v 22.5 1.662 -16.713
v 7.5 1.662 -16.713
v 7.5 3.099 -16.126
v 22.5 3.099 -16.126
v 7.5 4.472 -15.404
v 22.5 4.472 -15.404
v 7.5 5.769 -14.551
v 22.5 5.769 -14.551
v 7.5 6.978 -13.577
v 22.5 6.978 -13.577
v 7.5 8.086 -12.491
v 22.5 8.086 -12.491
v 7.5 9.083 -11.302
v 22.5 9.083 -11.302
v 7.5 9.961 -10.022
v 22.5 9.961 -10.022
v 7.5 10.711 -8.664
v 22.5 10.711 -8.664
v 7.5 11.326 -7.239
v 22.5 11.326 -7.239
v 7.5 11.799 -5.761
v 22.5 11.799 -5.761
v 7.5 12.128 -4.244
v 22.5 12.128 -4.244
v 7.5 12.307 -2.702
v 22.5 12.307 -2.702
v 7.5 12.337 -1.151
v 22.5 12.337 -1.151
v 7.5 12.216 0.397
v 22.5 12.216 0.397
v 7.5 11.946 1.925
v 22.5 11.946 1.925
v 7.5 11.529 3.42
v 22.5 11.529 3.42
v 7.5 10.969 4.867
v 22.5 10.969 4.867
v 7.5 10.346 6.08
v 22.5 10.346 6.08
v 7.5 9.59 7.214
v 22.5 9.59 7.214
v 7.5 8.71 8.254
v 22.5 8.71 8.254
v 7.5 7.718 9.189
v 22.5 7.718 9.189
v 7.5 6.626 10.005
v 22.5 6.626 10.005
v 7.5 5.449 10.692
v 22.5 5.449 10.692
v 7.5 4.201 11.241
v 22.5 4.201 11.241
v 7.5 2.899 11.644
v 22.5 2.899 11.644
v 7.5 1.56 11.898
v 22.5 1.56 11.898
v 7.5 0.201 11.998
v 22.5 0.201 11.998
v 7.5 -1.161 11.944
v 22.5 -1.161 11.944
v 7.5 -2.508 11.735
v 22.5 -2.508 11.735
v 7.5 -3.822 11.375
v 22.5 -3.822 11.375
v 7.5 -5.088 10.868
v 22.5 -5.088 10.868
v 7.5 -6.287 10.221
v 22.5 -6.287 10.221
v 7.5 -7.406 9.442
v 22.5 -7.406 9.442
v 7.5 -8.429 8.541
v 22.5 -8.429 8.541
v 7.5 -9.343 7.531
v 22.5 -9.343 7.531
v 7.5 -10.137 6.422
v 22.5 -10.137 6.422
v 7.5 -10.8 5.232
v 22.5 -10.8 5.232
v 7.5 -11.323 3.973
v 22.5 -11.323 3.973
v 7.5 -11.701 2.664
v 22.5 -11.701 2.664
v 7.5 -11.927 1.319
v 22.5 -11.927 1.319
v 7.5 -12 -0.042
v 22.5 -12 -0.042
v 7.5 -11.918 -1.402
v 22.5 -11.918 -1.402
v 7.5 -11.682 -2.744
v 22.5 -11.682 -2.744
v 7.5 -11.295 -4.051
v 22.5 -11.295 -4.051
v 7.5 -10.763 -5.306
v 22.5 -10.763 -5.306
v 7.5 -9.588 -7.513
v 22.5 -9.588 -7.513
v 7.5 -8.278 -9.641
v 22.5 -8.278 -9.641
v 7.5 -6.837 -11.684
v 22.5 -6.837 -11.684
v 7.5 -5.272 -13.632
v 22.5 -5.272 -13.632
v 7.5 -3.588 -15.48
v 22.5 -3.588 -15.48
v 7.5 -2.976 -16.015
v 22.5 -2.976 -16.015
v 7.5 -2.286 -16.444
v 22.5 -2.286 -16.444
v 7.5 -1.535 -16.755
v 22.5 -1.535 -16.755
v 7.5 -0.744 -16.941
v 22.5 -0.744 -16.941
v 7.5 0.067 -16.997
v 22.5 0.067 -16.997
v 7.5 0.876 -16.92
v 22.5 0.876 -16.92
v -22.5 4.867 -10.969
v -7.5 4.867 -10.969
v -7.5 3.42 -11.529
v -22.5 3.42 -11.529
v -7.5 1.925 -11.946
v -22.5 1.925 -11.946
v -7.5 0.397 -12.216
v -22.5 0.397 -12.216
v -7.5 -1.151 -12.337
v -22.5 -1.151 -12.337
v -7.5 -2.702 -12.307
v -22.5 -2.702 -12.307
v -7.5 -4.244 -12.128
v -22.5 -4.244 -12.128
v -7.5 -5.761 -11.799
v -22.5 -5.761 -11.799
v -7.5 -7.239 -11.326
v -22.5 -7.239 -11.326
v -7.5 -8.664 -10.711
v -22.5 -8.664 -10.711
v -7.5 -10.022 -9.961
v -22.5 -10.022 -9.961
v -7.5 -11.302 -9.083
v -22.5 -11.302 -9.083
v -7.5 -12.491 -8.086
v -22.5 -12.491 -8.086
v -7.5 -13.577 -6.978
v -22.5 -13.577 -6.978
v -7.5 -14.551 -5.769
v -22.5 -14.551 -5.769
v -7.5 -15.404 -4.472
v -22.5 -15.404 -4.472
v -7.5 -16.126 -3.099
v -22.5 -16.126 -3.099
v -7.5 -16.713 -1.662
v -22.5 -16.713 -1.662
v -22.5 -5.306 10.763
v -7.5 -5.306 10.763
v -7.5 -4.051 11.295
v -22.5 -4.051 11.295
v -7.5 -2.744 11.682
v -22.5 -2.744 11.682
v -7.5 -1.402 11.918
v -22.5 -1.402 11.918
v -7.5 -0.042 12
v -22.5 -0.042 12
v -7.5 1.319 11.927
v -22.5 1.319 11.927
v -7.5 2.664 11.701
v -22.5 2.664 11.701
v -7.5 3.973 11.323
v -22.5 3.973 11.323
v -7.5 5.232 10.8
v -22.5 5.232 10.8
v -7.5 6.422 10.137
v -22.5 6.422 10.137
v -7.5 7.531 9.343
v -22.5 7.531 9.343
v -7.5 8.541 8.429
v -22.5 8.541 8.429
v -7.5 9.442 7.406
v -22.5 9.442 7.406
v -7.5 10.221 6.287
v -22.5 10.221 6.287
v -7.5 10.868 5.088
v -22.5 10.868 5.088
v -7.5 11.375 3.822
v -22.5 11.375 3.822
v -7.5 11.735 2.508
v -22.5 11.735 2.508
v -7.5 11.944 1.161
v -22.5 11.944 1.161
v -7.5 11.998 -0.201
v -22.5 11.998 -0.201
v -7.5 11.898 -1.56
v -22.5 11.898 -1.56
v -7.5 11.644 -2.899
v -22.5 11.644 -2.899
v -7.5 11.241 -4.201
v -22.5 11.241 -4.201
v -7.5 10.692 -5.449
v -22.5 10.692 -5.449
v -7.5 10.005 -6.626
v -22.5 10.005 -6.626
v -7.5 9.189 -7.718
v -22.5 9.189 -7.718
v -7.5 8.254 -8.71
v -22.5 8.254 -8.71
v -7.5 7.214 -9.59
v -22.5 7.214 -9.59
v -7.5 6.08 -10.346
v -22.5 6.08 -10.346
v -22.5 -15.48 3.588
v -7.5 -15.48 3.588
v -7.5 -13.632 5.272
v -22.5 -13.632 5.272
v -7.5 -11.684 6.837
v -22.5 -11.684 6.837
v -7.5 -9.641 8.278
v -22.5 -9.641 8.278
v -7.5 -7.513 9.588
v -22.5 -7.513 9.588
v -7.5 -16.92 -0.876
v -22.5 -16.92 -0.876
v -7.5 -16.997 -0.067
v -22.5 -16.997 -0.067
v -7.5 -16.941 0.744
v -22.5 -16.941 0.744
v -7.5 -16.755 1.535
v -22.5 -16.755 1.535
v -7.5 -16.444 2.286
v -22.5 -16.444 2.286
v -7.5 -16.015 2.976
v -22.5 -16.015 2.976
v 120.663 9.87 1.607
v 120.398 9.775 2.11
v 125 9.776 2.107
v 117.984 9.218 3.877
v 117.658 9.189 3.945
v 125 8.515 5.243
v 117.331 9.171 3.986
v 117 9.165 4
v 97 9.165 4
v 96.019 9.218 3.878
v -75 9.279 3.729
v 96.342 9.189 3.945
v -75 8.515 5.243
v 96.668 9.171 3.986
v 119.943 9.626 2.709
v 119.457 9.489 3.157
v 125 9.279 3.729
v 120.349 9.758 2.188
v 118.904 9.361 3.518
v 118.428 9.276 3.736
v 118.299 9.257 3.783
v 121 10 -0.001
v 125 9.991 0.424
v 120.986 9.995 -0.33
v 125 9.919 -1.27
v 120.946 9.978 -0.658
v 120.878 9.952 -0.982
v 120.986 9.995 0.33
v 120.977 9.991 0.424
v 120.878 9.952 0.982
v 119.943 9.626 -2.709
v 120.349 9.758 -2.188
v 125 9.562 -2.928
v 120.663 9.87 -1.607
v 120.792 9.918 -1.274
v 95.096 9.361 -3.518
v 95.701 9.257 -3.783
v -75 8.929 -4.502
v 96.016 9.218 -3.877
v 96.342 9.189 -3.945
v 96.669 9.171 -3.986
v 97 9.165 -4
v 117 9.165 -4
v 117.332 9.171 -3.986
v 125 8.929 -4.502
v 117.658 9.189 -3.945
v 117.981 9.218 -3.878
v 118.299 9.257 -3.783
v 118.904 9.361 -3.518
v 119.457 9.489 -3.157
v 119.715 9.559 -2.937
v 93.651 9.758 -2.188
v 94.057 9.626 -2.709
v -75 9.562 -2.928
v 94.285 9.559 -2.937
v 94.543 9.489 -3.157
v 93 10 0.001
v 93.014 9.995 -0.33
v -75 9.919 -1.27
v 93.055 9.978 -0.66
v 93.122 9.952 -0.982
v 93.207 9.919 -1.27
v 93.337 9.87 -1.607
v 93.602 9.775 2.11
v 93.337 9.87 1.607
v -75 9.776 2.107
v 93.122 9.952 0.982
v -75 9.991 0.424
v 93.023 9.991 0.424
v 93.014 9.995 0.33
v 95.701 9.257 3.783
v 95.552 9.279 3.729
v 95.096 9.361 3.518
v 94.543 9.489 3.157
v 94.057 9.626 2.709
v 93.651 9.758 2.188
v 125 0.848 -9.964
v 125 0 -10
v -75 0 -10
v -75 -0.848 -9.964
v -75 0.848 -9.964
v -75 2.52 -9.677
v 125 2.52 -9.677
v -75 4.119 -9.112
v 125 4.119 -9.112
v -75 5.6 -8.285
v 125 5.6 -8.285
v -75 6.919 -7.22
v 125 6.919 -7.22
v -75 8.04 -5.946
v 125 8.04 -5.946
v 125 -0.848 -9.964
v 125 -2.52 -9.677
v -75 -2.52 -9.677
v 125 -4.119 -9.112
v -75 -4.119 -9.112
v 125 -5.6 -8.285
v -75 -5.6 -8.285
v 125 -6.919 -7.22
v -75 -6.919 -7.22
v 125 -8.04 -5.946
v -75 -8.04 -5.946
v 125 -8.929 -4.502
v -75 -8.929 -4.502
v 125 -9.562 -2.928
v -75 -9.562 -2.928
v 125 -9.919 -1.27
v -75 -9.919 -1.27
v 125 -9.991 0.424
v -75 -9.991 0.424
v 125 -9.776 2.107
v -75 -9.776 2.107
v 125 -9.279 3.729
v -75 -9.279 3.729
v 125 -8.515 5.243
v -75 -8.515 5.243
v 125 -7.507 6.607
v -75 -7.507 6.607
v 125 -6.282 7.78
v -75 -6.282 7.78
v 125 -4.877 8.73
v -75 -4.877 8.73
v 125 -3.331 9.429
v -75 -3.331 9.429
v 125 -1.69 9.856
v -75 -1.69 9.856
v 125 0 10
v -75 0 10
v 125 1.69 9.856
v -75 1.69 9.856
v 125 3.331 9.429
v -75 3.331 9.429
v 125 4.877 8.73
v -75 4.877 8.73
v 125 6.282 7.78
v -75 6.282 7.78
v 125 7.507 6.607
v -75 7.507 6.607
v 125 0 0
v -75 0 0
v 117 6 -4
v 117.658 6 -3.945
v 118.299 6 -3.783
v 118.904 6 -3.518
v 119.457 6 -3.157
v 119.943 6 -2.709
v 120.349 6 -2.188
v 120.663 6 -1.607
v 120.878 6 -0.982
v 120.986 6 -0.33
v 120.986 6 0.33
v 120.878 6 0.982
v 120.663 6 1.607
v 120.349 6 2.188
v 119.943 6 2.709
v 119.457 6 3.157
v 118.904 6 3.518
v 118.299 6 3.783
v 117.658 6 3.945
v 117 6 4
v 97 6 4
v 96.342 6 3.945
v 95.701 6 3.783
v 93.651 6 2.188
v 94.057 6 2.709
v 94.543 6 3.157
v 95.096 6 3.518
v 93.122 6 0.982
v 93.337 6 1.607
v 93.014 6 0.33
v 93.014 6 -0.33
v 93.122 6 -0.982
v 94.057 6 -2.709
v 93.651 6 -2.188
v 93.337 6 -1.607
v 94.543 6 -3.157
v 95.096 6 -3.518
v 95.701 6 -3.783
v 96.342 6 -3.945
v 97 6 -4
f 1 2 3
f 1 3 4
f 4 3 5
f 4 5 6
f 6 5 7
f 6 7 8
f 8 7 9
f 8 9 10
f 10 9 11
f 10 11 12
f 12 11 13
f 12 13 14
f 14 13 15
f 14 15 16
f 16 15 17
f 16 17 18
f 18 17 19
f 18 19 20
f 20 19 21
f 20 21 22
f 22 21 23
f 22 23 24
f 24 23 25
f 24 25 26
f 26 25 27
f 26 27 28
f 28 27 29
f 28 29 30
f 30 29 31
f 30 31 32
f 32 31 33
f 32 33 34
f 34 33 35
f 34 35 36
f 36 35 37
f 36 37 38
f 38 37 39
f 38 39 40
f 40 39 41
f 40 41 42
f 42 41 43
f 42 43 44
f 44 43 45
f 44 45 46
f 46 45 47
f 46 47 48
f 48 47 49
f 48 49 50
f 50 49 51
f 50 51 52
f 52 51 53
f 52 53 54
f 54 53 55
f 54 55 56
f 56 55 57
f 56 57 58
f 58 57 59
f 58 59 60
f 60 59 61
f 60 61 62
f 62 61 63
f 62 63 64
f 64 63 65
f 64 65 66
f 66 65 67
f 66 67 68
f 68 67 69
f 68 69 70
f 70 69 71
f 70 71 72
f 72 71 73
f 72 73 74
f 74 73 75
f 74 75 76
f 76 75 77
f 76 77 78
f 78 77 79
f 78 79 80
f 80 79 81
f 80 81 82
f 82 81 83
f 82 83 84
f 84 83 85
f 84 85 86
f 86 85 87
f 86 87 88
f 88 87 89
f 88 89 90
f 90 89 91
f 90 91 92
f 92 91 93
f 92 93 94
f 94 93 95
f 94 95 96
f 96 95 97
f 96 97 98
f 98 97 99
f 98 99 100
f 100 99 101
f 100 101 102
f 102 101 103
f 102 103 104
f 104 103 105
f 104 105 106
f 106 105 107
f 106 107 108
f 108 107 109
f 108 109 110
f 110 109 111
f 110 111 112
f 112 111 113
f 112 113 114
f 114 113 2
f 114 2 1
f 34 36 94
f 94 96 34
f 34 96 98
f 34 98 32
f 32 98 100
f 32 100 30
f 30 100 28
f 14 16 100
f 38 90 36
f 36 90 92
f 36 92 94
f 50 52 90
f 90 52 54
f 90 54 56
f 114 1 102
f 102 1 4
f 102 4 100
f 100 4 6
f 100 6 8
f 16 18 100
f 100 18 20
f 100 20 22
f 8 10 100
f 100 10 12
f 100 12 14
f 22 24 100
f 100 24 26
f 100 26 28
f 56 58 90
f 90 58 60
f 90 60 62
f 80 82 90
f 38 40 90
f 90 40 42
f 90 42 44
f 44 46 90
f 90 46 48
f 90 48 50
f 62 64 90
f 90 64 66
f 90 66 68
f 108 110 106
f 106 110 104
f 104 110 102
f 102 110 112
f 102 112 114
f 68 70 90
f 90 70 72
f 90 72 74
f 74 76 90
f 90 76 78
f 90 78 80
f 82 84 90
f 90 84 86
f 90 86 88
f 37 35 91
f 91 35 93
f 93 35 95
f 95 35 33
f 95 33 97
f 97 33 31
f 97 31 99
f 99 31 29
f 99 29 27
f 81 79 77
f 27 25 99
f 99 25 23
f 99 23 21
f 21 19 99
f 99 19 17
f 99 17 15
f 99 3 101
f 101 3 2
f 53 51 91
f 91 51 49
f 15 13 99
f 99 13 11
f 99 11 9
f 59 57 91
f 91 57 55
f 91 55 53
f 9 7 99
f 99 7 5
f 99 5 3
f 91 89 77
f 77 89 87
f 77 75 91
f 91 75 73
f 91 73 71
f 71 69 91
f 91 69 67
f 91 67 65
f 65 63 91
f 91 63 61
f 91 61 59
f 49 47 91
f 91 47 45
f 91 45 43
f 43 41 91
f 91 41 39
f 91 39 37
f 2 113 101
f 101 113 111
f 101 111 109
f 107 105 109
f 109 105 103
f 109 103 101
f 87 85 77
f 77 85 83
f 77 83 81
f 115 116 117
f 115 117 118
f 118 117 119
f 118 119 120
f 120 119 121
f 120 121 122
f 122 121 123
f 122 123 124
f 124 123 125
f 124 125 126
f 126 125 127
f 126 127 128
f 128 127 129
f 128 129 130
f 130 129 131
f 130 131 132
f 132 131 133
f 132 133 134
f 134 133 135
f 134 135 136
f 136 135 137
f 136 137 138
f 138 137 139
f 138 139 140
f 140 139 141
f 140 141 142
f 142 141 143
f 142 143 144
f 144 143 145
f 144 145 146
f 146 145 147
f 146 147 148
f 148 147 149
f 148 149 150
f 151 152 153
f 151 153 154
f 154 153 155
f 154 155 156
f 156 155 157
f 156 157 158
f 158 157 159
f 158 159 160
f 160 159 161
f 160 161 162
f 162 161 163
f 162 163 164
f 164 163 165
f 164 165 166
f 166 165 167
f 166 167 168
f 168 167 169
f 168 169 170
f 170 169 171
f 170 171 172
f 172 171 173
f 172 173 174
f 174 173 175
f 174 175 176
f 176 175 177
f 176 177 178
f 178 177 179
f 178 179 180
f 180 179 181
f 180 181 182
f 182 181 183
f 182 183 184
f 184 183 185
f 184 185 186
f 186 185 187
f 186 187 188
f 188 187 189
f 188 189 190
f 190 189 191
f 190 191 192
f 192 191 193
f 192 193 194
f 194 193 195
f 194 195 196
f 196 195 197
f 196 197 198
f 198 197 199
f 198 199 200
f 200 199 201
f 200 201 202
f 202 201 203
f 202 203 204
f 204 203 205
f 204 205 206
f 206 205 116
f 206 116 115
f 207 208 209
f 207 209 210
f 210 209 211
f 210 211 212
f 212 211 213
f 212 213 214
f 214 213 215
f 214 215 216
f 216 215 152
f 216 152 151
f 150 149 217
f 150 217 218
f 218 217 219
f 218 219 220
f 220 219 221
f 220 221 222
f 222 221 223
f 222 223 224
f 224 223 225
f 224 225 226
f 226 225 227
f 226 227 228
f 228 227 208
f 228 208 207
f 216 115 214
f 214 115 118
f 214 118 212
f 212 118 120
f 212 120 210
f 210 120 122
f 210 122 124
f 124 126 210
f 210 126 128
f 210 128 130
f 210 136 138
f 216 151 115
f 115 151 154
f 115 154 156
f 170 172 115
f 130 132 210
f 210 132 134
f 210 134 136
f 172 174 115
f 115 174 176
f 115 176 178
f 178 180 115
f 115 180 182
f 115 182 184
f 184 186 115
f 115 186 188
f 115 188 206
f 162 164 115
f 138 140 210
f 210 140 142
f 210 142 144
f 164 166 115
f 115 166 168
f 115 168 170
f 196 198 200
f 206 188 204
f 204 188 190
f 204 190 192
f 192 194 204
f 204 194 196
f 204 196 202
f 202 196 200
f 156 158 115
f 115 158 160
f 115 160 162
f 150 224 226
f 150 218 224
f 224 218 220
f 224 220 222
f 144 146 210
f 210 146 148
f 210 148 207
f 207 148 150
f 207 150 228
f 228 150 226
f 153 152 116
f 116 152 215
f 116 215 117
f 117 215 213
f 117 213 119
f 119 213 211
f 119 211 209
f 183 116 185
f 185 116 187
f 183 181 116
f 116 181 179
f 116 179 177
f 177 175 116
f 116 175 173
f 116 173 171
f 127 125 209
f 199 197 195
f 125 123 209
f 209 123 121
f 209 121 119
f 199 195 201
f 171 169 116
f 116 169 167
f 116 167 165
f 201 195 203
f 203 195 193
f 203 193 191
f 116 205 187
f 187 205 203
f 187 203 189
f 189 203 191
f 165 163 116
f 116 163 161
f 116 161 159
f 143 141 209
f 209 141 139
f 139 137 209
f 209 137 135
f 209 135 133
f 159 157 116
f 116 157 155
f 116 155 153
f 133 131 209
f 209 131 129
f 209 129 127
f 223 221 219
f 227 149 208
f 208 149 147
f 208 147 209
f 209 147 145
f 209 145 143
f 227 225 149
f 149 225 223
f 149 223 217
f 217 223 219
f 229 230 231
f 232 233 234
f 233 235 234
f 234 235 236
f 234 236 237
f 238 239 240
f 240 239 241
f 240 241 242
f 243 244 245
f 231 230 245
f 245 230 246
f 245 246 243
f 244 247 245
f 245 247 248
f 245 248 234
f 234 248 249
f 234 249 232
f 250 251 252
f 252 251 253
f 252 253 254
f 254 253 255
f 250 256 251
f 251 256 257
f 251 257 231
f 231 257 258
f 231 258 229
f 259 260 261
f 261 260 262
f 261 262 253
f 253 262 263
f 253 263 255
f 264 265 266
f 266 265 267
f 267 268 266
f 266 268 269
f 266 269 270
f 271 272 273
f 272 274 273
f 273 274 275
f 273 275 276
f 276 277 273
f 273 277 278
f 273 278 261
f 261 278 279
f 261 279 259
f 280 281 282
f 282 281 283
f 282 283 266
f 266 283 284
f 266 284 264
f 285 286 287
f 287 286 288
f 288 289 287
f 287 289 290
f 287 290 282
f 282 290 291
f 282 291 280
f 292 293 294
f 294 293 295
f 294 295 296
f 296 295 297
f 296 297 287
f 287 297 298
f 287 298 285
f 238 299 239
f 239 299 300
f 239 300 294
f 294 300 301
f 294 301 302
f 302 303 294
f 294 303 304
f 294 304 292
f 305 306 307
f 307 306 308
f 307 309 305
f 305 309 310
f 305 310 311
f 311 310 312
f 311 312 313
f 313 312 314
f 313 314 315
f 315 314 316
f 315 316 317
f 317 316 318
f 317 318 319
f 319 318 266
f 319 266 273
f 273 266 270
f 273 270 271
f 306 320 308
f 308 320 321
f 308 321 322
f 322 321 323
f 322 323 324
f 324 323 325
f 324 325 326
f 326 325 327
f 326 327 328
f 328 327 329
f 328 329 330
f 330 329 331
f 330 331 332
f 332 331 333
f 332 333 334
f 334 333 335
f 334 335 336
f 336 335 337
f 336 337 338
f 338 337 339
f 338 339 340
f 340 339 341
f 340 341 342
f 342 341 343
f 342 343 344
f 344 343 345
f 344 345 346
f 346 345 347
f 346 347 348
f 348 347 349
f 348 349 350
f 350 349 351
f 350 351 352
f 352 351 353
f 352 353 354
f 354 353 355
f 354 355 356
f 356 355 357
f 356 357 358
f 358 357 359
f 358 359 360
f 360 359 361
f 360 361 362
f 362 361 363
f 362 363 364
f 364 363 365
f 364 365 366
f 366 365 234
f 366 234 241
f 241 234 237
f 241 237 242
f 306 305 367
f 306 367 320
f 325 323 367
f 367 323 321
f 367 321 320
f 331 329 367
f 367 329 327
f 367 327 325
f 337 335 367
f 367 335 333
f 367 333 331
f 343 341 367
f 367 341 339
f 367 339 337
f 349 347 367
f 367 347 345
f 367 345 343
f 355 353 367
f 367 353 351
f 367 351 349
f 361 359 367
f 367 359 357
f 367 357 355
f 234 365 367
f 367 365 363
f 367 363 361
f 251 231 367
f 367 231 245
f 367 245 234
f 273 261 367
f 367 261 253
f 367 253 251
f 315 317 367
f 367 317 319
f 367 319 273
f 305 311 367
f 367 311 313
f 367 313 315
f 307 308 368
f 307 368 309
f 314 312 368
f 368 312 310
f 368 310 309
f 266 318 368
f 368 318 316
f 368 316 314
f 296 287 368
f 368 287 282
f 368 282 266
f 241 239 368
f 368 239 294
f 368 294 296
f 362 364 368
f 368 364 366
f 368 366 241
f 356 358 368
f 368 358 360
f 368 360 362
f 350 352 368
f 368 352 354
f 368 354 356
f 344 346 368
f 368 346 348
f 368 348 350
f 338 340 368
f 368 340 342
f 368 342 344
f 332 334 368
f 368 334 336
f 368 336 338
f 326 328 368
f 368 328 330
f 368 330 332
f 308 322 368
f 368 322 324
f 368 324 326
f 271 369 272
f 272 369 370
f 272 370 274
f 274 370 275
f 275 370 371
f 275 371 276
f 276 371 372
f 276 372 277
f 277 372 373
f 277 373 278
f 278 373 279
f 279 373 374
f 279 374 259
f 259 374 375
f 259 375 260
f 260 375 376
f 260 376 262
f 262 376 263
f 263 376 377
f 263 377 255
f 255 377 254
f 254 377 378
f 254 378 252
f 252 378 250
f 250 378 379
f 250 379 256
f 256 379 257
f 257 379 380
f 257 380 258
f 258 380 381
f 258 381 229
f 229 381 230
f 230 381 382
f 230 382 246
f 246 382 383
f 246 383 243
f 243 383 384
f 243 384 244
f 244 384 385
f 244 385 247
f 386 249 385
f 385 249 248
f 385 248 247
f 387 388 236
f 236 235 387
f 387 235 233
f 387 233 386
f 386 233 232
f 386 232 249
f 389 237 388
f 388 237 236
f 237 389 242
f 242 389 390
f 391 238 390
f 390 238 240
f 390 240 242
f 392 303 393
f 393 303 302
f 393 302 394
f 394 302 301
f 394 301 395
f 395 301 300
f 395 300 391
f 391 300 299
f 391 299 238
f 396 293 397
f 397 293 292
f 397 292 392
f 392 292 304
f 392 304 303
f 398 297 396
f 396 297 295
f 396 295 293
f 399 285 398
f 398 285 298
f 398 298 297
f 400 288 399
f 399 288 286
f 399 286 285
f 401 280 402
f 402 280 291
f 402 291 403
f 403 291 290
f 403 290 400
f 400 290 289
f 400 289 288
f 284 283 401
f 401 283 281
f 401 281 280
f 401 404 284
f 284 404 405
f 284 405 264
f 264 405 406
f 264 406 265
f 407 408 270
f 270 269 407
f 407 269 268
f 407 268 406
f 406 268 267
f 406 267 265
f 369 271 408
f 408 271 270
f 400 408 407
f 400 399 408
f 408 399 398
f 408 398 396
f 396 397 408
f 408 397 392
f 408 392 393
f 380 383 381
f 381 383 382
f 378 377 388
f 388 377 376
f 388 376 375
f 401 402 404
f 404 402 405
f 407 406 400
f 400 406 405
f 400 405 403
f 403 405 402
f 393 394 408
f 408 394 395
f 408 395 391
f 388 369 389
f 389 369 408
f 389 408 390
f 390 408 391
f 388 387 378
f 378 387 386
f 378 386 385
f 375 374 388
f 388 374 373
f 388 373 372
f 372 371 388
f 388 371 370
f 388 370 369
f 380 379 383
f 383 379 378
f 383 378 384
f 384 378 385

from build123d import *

# Parameters (mm, degrees)
SKETCH1_R                = 10
BOSS_EXTRUDE1_DEPTH      = 125
BOSS_EXTRUDE1_DEPTH_BACK = 75
BOSS_EXTRUDE2_START      = 15
BOSS_EXTRUDE2_DEPTH      = 7.5
BODY_MOVE_COPY1_ANGLE    = 90
CUT_EXTRUDE1_DEPTH       = 4


with BuildPart() as part:
    # Sketch1 → Boss-Extrude1 (new body, two sides)
    with BuildSketch(Plane(origin=(0, 0, 0), x_dir=(0, 0, -1), z_dir=(1, 0, 0))) as boss_extrude1_sk:
        Circle(SKETCH1_R)
    extrude(amount=BOSS_EXTRUDE1_DEPTH)
    extrude(boss_extrude1_sk.sketch, amount=-BOSS_EXTRUDE1_DEPTH_BACK)

    # Sketch4 → Cut-Extrude1 (cut)
    with BuildSketch(Plane(origin=(0, 10, 0), x_dir=(1, 0, 0), z_dir=(0, 1, 0))):
        with BuildLine():
            Line((117, -4), (97, -4))
            ThreePointArc((97, -4), (93, 0), (97, 4))
            Line((97, 4), (117, 4))
            ThreePointArc((117, 4), (121, 0), (117, -4))
        make_face()
    extrude(amount=-CUT_EXTRUDE1_DEPTH, mode=Mode.SUBTRACT)


with BuildPart() as body_2:
    # Sketch2 → Boss-Extrude2 (new body, symmetric)
    with BuildSketch(Plane(origin=(0, 0, 0), x_dir=(0, 0, -1), z_dir=(1, 0, 0)).offset(BOSS_EXTRUDE2_START)):
        with BuildLine():
            ThreePointArc((15.479542802, -3.587694386), (16.864464688, -1.143374761), (16.712672037, 1.661917746))
            ThreePointArc((16.712672037, 1.661917746), (7.958571112, 11.035699457), (-4.867089568, 10.968657125))
            ThreePointArc((-4.867089568, 10.968657125), (-10.868088345, -5.087696504), (5.306226617, -10.763083159))
            ThreePointArc((5.306226617, -10.763083159), (10.673744978, -7.573594418), (15.479542802, -3.587694386))
        make_face()
    extrude(amount=BOSS_EXTRUDE2_DEPTH, both=True)


with BuildPart() as body_3:
    # Mirror4: mirrored copy
    add(body_2.part.mirror(Plane(origin=(0, 0, 0), x_dir=(0, 0, 1), z_dir=(1, 0, 0))))


with BuildPart() as body_3_1:
    # Body-Move/Copy1: moved
    add(body_3.part.rotate(Axis((0, 0, 0), (-1, 0, 0)), BODY_MOVE_COPY1_ANGLE))


solid = Compound([part.part, body_2.part, body_3_1.part])
